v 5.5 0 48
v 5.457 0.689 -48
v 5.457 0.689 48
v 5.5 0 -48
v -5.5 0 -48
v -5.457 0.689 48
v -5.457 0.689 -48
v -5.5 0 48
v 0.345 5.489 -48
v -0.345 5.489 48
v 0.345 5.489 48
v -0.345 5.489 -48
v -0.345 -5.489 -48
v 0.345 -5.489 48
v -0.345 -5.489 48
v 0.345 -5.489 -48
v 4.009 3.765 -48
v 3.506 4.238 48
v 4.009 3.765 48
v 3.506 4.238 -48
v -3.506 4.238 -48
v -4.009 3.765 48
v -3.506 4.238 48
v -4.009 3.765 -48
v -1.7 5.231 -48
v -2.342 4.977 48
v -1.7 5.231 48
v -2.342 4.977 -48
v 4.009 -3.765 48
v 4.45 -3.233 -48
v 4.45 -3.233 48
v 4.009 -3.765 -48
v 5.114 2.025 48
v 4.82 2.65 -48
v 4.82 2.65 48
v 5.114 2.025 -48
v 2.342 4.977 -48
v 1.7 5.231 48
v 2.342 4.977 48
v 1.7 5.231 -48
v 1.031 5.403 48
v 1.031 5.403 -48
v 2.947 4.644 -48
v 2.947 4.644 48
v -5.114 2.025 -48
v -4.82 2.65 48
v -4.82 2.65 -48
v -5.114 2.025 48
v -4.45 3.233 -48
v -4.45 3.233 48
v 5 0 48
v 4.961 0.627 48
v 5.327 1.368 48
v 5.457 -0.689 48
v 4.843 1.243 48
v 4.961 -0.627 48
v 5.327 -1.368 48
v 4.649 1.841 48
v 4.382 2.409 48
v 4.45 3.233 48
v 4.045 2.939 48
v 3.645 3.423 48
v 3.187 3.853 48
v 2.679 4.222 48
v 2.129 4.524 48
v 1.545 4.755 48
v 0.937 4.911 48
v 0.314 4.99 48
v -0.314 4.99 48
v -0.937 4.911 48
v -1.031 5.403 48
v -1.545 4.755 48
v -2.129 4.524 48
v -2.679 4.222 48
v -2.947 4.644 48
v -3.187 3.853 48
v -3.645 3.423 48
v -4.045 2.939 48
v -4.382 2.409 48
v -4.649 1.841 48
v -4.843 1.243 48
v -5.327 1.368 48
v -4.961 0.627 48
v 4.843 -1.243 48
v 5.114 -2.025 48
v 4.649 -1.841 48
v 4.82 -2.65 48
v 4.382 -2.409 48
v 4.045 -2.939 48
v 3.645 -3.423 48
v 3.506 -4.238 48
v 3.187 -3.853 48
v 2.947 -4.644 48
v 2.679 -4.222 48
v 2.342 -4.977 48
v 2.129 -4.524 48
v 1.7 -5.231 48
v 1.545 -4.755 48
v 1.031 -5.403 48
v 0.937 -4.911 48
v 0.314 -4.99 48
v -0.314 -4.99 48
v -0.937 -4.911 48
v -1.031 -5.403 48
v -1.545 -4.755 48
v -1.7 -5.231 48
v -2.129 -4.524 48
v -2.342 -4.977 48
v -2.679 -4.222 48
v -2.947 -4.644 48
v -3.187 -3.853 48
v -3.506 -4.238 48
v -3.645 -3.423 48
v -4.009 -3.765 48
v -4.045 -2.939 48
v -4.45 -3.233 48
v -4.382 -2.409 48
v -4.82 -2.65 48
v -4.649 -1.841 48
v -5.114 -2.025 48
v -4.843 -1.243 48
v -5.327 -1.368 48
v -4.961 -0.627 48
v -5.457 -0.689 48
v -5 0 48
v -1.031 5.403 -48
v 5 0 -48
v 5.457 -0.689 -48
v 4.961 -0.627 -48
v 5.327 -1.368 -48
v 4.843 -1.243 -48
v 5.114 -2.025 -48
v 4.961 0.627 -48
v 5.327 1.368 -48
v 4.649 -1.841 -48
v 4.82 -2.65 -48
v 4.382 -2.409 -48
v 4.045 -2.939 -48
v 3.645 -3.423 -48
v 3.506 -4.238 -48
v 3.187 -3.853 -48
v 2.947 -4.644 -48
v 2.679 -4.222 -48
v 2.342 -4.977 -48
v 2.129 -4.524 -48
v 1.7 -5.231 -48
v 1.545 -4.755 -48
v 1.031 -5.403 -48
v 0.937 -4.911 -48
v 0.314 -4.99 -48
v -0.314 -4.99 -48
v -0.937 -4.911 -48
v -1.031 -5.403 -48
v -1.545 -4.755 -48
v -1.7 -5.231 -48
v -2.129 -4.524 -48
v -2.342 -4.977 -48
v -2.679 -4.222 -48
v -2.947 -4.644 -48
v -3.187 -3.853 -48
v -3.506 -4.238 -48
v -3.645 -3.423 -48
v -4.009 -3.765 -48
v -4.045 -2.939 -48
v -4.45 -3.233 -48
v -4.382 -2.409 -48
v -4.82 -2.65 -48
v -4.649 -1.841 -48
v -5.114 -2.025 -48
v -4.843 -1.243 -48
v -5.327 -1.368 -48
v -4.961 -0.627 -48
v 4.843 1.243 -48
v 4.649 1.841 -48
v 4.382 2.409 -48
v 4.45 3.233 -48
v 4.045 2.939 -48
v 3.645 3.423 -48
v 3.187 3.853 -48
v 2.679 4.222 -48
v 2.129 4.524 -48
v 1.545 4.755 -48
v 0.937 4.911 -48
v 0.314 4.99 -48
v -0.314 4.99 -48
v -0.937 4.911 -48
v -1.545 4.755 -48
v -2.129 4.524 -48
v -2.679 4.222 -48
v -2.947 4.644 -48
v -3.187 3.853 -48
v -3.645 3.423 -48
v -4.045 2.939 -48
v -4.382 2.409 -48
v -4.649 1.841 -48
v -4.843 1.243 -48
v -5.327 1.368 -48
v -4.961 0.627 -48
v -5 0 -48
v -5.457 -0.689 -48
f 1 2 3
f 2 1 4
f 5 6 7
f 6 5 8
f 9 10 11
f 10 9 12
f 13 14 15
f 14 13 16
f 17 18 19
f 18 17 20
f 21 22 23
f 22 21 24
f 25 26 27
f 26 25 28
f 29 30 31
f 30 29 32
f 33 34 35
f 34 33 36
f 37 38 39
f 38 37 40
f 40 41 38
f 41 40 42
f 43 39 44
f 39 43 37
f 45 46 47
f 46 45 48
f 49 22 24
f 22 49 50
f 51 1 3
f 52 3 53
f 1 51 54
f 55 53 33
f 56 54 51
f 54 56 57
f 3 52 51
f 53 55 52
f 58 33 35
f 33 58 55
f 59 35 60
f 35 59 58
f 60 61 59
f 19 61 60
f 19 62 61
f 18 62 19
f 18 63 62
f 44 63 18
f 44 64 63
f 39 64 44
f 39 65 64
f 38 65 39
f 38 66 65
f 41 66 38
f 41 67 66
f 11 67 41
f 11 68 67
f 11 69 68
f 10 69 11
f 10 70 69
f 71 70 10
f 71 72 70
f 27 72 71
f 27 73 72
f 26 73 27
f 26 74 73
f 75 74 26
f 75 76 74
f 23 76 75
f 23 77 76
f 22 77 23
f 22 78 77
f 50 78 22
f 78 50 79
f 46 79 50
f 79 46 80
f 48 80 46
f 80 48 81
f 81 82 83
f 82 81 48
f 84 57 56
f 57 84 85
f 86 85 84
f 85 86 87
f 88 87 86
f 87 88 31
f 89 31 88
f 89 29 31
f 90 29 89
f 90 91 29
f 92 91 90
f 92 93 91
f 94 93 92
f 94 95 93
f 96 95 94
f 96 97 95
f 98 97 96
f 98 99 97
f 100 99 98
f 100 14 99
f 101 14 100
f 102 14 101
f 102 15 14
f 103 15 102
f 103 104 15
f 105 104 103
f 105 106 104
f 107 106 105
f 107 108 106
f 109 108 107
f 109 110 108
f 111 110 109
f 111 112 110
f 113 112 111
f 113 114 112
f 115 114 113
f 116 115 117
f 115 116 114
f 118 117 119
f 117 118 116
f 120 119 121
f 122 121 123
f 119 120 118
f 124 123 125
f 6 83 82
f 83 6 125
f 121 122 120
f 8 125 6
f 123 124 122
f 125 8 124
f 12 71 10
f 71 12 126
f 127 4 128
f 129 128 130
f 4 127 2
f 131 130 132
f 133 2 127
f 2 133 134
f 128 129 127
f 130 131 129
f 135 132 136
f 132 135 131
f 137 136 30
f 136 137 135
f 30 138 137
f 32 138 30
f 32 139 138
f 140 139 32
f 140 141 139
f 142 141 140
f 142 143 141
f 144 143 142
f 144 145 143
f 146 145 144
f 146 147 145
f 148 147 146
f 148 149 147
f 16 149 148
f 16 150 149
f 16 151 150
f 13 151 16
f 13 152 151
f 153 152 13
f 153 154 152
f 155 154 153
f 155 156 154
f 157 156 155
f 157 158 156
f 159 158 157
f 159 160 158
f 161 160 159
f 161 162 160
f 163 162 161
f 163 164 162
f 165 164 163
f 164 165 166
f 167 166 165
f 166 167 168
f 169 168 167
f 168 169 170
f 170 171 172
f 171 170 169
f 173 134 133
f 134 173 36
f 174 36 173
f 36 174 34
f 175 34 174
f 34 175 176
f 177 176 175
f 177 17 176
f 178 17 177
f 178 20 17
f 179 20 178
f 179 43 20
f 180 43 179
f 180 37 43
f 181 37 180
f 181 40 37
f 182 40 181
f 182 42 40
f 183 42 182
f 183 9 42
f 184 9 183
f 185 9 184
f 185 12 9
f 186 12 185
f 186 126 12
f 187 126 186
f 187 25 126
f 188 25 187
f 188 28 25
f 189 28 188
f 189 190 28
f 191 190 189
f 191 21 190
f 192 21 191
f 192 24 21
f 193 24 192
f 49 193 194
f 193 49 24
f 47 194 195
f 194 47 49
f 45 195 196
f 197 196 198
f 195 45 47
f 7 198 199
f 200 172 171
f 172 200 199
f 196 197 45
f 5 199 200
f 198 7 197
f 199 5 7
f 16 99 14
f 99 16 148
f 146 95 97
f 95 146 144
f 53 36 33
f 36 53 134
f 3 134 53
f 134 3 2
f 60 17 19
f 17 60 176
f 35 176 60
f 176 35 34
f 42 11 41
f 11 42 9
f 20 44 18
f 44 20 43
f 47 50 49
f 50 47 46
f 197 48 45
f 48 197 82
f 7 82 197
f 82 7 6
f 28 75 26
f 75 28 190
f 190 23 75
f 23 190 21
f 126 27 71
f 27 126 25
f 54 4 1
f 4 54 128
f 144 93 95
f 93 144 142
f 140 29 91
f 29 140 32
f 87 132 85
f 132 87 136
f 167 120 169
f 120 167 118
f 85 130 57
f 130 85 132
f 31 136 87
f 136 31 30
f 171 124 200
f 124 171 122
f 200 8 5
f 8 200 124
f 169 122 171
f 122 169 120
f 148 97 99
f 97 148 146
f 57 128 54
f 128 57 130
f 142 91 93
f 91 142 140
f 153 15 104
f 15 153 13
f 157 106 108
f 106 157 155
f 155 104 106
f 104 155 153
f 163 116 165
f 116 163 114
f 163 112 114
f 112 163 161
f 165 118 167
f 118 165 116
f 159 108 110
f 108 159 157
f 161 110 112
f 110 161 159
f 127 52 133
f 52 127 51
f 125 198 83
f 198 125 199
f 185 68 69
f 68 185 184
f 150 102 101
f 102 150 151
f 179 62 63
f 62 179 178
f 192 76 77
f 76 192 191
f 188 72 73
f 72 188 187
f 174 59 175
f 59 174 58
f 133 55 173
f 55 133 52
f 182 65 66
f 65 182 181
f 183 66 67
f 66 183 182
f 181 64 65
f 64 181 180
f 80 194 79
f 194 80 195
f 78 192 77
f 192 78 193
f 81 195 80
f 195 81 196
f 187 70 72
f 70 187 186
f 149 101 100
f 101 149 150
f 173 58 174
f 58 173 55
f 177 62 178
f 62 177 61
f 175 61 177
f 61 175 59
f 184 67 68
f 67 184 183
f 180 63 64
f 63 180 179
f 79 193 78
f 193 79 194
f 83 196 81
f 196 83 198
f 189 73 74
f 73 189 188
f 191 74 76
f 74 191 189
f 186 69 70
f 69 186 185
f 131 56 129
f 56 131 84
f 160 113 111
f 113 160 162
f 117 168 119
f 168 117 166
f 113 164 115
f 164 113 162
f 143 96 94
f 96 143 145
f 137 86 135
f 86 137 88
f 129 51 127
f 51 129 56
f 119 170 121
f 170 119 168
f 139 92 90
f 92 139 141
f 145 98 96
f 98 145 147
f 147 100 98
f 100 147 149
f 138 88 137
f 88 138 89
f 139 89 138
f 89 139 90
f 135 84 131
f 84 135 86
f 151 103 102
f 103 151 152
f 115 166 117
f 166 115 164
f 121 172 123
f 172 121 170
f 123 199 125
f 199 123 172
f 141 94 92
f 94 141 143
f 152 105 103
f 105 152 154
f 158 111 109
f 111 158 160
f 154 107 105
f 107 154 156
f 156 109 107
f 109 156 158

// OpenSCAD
$fn = 50;


difference() {
	union() {
		translate(v = [0, 0, -48.0000000000]) {
			cylinder(h = 96, r = 5.5000000000);
		}
	}
	union() {
		translate(v = [0, 0, -100.0000000000]) {
			cylinder(h = 200, r = 5);
		}
	}
}
